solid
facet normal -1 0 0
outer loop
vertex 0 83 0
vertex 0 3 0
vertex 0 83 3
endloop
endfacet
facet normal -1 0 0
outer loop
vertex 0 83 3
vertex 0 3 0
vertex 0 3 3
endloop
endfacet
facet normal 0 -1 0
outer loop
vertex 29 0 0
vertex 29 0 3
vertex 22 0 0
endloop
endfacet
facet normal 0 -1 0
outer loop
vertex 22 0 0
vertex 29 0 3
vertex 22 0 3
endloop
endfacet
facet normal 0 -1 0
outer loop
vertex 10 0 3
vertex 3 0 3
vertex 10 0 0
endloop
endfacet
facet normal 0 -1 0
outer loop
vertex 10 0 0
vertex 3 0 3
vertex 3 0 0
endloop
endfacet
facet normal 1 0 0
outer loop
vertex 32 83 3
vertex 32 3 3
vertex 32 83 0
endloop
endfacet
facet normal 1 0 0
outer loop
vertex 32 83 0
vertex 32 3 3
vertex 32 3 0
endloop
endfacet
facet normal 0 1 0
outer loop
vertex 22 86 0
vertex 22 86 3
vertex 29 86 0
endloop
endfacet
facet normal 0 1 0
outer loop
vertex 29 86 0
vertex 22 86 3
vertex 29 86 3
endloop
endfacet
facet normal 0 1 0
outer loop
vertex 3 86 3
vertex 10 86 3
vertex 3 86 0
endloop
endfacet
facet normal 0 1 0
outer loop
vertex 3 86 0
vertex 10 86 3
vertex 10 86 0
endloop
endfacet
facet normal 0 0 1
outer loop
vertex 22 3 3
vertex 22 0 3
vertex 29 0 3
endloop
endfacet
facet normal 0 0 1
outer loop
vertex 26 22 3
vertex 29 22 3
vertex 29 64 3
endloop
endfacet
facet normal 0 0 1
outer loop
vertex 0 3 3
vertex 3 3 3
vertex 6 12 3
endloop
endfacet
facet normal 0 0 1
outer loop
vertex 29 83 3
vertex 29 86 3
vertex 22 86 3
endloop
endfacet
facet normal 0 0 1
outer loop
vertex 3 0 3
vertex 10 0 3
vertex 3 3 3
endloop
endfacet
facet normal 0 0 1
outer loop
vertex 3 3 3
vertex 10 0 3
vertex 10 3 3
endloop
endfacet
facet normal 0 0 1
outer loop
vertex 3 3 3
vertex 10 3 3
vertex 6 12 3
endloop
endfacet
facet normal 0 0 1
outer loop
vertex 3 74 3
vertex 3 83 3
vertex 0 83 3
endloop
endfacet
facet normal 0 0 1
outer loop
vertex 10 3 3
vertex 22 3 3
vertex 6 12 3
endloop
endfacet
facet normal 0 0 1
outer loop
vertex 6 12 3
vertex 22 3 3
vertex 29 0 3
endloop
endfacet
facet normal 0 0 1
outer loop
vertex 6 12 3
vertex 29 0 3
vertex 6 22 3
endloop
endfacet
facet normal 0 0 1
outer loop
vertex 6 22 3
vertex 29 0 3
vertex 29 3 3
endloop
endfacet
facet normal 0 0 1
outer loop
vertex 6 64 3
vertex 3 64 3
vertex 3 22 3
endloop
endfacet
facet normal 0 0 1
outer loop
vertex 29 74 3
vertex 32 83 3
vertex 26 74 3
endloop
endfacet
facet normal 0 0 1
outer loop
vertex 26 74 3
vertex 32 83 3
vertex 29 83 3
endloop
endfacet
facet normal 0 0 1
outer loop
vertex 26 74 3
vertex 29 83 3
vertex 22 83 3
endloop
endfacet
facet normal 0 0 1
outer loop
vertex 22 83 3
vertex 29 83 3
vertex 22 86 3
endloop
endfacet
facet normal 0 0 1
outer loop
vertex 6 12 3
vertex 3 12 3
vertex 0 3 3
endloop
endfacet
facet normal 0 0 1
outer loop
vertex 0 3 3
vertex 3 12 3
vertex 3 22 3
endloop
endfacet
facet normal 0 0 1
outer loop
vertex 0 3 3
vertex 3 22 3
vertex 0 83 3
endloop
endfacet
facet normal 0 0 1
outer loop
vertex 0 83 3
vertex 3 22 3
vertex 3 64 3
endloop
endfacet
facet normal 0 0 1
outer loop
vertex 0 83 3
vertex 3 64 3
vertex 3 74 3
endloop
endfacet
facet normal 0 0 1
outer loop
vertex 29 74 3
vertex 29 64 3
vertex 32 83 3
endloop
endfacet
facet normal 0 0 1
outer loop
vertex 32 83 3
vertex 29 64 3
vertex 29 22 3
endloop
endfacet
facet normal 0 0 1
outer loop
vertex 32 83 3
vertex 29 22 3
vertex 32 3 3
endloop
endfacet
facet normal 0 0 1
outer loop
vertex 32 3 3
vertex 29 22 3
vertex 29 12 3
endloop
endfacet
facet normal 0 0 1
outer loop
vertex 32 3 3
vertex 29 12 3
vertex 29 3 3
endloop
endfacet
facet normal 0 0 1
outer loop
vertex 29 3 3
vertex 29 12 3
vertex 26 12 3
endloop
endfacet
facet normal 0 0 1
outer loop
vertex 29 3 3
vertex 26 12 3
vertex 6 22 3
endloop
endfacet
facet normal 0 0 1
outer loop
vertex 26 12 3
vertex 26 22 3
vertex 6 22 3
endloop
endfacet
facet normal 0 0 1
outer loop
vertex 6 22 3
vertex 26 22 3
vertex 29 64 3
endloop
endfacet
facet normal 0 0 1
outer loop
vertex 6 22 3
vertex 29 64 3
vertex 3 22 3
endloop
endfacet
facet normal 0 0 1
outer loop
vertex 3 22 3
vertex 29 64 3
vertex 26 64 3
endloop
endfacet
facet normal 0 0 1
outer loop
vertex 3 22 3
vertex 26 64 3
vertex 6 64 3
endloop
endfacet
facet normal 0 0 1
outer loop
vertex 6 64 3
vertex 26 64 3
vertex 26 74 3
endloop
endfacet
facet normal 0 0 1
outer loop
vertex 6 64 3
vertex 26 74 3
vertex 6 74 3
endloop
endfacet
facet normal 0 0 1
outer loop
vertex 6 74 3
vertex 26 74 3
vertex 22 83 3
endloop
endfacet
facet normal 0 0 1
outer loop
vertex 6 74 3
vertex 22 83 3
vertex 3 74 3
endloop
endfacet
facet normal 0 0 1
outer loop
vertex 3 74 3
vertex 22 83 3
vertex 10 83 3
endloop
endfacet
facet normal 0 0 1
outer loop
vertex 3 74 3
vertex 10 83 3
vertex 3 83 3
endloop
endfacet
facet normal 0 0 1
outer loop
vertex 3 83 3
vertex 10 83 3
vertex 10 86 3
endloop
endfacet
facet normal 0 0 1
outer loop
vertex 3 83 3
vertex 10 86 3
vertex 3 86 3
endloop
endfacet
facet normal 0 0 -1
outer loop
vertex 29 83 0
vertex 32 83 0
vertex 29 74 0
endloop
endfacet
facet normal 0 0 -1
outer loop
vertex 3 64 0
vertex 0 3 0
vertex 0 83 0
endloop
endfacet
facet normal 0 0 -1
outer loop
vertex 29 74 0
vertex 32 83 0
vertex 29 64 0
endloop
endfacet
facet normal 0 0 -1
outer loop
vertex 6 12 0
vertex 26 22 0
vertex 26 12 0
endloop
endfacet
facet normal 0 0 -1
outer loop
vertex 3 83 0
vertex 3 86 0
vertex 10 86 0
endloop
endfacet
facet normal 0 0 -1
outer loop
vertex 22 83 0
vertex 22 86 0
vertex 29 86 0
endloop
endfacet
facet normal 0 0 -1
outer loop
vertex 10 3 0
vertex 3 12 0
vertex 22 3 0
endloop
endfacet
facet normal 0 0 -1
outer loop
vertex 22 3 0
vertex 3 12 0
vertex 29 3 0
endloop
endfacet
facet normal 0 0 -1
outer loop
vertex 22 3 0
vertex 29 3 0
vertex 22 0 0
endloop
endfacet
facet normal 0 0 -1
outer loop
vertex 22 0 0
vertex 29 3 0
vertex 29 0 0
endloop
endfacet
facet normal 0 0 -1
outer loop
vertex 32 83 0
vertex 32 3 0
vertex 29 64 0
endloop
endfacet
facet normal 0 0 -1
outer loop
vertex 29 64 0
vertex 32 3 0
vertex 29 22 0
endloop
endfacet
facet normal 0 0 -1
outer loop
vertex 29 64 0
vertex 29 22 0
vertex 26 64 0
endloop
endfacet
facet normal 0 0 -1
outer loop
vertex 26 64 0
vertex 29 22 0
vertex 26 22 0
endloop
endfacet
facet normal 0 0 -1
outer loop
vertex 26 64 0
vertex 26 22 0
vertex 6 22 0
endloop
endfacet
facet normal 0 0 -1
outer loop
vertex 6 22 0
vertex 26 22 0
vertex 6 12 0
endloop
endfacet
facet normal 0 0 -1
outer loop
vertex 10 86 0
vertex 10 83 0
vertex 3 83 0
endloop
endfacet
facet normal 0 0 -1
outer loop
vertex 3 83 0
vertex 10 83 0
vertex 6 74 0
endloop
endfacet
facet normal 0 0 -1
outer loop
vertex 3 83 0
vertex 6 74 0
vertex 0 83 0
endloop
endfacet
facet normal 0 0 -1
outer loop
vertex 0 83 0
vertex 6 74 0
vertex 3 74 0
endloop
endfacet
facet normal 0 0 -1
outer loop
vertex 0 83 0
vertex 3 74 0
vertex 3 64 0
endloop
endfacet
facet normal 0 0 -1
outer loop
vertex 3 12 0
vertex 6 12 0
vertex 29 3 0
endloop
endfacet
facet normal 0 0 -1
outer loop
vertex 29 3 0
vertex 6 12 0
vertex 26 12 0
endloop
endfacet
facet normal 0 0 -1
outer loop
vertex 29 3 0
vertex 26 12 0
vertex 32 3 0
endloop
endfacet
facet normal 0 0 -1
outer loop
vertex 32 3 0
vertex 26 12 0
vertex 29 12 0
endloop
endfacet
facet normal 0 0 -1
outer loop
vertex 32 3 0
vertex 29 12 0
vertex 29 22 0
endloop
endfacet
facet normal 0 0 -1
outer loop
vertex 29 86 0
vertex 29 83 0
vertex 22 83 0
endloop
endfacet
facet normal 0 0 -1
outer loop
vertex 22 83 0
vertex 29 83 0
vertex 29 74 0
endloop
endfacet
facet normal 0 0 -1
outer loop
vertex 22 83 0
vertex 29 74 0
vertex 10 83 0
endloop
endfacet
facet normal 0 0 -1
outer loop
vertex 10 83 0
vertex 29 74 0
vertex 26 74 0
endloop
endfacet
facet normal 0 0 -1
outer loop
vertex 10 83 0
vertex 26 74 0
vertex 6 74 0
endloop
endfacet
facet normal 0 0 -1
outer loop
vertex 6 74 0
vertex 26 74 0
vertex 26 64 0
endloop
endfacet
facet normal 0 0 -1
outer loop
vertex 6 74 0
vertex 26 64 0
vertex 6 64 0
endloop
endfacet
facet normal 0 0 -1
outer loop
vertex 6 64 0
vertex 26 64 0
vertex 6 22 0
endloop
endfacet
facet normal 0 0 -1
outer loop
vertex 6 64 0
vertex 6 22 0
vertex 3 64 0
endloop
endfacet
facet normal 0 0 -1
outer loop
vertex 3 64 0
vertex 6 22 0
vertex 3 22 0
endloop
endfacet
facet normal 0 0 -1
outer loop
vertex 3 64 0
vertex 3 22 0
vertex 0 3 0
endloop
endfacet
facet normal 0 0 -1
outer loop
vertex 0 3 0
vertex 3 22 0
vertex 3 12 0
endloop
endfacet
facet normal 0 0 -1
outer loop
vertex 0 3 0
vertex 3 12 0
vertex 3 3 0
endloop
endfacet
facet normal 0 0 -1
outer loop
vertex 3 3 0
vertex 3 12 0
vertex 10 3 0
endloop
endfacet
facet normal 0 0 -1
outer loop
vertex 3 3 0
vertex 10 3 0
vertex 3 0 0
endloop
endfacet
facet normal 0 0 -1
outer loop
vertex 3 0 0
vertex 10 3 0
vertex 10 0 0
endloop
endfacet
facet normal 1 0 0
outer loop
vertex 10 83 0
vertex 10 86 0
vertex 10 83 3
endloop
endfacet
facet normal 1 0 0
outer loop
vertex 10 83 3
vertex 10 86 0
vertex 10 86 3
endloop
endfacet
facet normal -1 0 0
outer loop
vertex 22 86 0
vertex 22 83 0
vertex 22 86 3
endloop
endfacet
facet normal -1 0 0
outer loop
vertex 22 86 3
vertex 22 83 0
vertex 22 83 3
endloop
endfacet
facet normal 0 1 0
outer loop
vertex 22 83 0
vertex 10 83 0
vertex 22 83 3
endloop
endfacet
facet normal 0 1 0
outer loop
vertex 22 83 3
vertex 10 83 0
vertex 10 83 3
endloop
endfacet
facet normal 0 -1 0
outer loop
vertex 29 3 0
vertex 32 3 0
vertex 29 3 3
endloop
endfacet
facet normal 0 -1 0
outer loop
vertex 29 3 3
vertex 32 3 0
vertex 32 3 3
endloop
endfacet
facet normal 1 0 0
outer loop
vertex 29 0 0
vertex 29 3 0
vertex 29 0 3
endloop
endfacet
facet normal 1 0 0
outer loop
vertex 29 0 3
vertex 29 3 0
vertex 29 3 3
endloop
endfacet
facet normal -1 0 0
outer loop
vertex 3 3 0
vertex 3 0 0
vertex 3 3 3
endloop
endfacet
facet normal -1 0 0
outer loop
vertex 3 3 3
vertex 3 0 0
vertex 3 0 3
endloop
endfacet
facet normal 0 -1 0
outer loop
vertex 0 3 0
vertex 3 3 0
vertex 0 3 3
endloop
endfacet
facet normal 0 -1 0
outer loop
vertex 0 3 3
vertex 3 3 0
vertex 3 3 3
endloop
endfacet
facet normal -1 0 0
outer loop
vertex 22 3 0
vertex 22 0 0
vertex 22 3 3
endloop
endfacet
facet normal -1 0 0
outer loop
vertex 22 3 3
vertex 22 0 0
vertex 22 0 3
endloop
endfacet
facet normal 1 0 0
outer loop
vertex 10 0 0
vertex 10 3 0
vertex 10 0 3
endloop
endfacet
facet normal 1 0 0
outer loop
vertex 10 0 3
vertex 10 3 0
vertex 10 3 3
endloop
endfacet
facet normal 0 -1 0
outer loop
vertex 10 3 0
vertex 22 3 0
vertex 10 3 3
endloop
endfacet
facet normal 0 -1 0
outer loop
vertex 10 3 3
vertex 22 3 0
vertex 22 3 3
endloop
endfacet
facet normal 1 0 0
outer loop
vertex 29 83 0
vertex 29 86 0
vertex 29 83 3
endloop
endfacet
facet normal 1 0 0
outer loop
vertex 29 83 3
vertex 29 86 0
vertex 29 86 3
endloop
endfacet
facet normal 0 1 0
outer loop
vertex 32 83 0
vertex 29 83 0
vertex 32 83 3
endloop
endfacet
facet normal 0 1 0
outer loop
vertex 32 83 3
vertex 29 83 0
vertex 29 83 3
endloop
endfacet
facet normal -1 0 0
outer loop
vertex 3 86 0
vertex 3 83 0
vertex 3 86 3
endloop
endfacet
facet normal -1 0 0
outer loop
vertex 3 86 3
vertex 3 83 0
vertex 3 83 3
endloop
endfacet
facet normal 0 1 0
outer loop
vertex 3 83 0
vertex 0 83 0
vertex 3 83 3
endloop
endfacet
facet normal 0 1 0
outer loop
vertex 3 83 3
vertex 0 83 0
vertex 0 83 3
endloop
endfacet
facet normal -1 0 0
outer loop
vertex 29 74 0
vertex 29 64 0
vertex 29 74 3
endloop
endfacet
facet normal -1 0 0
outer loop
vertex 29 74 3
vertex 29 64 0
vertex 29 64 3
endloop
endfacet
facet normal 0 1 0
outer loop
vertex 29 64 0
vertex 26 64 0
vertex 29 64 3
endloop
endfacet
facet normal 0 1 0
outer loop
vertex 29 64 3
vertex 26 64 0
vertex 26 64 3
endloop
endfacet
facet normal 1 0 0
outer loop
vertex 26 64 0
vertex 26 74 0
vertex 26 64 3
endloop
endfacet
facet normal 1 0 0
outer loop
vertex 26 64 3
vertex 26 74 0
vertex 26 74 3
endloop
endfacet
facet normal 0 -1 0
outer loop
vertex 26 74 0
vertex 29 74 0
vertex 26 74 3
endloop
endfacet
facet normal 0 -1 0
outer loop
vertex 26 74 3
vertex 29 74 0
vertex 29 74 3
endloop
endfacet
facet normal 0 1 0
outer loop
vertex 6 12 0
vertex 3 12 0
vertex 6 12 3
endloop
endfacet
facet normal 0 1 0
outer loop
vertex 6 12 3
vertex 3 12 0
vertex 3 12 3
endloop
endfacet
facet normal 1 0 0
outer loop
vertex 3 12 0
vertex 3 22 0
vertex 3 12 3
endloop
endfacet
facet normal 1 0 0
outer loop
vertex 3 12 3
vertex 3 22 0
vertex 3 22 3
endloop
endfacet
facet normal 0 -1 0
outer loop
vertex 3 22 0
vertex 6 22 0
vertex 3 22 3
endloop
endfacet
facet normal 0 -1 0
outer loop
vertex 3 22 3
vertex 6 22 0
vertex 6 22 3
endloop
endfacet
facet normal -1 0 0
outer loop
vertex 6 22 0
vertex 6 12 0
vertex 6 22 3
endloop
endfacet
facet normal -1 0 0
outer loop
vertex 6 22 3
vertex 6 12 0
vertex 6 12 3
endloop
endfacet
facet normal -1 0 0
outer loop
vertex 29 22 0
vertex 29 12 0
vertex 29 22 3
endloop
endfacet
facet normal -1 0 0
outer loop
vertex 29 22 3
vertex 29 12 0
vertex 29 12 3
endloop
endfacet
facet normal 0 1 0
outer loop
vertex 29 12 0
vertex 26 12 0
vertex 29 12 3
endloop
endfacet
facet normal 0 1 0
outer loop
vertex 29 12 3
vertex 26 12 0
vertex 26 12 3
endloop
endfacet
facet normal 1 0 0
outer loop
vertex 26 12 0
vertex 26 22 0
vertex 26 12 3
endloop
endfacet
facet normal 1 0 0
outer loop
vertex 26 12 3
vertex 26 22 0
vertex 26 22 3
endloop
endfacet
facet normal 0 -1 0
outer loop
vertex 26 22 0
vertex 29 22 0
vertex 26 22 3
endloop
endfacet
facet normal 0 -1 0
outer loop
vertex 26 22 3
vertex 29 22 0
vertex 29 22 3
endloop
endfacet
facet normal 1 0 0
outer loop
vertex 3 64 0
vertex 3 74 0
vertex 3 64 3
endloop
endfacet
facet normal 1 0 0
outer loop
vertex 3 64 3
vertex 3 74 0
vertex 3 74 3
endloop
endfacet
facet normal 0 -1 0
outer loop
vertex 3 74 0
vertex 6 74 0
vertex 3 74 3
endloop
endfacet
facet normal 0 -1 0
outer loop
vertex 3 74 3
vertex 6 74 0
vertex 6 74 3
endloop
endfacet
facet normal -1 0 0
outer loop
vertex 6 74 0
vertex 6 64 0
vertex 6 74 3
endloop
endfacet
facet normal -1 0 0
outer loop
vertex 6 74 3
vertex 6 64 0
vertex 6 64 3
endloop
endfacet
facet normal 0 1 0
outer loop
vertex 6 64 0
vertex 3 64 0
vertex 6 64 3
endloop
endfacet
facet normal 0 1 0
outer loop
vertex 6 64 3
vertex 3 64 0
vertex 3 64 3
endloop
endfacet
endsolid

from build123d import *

# Parameters (mm, degrees)
SKETCH_1_W          = 32
SKETCH_1_H          = 86
EXTRUDE_1_DEPTH     = 3
SKETCH_2_W          = 12
SKETCH_2_H          = 3
SKETCH_2_W_2        = 3
CUT_EXTRUDE_1_DEPTH = 4
SKETCH_3_W          = 3
SKETCH_3_H          = 10
CUT_EXTRUDE_2_DEPTH = 4


with BuildPart() as part:
    # 스케치1 → 보스-돌출1 (new body)
    with BuildSketch(Plane.XY):
        with Locations((16, 43)):
            Rectangle(SKETCH_1_W, SKETCH_1_H)
    extrude(amount=EXTRUDE_1_DEPTH)

    # 스케치2 → 컷-돌출1 (cut, through all)
    with BuildSketch(Plane.XY.offset(3)):
        with Locations((16, 84.5)):
            Rectangle(SKETCH_2_W, SKETCH_2_H)
        with Locations((1.5, 84.5)):
            Rectangle(SKETCH_2_W_2, SKETCH_2_H)
        with Locations((30.5, 84.5)):
            Rectangle(SKETCH_2_W_2, SKETCH_2_H)
        with Locations((16, 1.5)):
            Rectangle(SKETCH_2_W, SKETCH_2_H)
        with Locations((1.5, 1.5)):
            Rectangle(SKETCH_2_W_2, SKETCH_2_H)
        with Locations((30.5, 1.5)):
            Rectangle(SKETCH_2_W_2, SKETCH_2_H)
    extrude(amount=-CUT_EXTRUDE_1_DEPTH, mode=Mode.SUBTRACT)

    # 스케치3 → 컷-돌출2 (cut, through all)
    with BuildSketch(Plane.XY.offset(3)):
        with Locations((27.5, 69)):
            Rectangle(SKETCH_3_W, SKETCH_3_H)
        with Locations((4.5, 69)):
            Rectangle(SKETCH_3_W, SKETCH_3_H)
        with Locations((27.5, 17)):
            Rectangle(SKETCH_3_W, SKETCH_3_H)
        with Locations((4.5, 17)):
            Rectangle(SKETCH_3_W, SKETCH_3_H)
    extrude(amount=-CUT_EXTRUDE_2_DEPTH, mode=Mode.SUBTRACT)


solid = part.part
